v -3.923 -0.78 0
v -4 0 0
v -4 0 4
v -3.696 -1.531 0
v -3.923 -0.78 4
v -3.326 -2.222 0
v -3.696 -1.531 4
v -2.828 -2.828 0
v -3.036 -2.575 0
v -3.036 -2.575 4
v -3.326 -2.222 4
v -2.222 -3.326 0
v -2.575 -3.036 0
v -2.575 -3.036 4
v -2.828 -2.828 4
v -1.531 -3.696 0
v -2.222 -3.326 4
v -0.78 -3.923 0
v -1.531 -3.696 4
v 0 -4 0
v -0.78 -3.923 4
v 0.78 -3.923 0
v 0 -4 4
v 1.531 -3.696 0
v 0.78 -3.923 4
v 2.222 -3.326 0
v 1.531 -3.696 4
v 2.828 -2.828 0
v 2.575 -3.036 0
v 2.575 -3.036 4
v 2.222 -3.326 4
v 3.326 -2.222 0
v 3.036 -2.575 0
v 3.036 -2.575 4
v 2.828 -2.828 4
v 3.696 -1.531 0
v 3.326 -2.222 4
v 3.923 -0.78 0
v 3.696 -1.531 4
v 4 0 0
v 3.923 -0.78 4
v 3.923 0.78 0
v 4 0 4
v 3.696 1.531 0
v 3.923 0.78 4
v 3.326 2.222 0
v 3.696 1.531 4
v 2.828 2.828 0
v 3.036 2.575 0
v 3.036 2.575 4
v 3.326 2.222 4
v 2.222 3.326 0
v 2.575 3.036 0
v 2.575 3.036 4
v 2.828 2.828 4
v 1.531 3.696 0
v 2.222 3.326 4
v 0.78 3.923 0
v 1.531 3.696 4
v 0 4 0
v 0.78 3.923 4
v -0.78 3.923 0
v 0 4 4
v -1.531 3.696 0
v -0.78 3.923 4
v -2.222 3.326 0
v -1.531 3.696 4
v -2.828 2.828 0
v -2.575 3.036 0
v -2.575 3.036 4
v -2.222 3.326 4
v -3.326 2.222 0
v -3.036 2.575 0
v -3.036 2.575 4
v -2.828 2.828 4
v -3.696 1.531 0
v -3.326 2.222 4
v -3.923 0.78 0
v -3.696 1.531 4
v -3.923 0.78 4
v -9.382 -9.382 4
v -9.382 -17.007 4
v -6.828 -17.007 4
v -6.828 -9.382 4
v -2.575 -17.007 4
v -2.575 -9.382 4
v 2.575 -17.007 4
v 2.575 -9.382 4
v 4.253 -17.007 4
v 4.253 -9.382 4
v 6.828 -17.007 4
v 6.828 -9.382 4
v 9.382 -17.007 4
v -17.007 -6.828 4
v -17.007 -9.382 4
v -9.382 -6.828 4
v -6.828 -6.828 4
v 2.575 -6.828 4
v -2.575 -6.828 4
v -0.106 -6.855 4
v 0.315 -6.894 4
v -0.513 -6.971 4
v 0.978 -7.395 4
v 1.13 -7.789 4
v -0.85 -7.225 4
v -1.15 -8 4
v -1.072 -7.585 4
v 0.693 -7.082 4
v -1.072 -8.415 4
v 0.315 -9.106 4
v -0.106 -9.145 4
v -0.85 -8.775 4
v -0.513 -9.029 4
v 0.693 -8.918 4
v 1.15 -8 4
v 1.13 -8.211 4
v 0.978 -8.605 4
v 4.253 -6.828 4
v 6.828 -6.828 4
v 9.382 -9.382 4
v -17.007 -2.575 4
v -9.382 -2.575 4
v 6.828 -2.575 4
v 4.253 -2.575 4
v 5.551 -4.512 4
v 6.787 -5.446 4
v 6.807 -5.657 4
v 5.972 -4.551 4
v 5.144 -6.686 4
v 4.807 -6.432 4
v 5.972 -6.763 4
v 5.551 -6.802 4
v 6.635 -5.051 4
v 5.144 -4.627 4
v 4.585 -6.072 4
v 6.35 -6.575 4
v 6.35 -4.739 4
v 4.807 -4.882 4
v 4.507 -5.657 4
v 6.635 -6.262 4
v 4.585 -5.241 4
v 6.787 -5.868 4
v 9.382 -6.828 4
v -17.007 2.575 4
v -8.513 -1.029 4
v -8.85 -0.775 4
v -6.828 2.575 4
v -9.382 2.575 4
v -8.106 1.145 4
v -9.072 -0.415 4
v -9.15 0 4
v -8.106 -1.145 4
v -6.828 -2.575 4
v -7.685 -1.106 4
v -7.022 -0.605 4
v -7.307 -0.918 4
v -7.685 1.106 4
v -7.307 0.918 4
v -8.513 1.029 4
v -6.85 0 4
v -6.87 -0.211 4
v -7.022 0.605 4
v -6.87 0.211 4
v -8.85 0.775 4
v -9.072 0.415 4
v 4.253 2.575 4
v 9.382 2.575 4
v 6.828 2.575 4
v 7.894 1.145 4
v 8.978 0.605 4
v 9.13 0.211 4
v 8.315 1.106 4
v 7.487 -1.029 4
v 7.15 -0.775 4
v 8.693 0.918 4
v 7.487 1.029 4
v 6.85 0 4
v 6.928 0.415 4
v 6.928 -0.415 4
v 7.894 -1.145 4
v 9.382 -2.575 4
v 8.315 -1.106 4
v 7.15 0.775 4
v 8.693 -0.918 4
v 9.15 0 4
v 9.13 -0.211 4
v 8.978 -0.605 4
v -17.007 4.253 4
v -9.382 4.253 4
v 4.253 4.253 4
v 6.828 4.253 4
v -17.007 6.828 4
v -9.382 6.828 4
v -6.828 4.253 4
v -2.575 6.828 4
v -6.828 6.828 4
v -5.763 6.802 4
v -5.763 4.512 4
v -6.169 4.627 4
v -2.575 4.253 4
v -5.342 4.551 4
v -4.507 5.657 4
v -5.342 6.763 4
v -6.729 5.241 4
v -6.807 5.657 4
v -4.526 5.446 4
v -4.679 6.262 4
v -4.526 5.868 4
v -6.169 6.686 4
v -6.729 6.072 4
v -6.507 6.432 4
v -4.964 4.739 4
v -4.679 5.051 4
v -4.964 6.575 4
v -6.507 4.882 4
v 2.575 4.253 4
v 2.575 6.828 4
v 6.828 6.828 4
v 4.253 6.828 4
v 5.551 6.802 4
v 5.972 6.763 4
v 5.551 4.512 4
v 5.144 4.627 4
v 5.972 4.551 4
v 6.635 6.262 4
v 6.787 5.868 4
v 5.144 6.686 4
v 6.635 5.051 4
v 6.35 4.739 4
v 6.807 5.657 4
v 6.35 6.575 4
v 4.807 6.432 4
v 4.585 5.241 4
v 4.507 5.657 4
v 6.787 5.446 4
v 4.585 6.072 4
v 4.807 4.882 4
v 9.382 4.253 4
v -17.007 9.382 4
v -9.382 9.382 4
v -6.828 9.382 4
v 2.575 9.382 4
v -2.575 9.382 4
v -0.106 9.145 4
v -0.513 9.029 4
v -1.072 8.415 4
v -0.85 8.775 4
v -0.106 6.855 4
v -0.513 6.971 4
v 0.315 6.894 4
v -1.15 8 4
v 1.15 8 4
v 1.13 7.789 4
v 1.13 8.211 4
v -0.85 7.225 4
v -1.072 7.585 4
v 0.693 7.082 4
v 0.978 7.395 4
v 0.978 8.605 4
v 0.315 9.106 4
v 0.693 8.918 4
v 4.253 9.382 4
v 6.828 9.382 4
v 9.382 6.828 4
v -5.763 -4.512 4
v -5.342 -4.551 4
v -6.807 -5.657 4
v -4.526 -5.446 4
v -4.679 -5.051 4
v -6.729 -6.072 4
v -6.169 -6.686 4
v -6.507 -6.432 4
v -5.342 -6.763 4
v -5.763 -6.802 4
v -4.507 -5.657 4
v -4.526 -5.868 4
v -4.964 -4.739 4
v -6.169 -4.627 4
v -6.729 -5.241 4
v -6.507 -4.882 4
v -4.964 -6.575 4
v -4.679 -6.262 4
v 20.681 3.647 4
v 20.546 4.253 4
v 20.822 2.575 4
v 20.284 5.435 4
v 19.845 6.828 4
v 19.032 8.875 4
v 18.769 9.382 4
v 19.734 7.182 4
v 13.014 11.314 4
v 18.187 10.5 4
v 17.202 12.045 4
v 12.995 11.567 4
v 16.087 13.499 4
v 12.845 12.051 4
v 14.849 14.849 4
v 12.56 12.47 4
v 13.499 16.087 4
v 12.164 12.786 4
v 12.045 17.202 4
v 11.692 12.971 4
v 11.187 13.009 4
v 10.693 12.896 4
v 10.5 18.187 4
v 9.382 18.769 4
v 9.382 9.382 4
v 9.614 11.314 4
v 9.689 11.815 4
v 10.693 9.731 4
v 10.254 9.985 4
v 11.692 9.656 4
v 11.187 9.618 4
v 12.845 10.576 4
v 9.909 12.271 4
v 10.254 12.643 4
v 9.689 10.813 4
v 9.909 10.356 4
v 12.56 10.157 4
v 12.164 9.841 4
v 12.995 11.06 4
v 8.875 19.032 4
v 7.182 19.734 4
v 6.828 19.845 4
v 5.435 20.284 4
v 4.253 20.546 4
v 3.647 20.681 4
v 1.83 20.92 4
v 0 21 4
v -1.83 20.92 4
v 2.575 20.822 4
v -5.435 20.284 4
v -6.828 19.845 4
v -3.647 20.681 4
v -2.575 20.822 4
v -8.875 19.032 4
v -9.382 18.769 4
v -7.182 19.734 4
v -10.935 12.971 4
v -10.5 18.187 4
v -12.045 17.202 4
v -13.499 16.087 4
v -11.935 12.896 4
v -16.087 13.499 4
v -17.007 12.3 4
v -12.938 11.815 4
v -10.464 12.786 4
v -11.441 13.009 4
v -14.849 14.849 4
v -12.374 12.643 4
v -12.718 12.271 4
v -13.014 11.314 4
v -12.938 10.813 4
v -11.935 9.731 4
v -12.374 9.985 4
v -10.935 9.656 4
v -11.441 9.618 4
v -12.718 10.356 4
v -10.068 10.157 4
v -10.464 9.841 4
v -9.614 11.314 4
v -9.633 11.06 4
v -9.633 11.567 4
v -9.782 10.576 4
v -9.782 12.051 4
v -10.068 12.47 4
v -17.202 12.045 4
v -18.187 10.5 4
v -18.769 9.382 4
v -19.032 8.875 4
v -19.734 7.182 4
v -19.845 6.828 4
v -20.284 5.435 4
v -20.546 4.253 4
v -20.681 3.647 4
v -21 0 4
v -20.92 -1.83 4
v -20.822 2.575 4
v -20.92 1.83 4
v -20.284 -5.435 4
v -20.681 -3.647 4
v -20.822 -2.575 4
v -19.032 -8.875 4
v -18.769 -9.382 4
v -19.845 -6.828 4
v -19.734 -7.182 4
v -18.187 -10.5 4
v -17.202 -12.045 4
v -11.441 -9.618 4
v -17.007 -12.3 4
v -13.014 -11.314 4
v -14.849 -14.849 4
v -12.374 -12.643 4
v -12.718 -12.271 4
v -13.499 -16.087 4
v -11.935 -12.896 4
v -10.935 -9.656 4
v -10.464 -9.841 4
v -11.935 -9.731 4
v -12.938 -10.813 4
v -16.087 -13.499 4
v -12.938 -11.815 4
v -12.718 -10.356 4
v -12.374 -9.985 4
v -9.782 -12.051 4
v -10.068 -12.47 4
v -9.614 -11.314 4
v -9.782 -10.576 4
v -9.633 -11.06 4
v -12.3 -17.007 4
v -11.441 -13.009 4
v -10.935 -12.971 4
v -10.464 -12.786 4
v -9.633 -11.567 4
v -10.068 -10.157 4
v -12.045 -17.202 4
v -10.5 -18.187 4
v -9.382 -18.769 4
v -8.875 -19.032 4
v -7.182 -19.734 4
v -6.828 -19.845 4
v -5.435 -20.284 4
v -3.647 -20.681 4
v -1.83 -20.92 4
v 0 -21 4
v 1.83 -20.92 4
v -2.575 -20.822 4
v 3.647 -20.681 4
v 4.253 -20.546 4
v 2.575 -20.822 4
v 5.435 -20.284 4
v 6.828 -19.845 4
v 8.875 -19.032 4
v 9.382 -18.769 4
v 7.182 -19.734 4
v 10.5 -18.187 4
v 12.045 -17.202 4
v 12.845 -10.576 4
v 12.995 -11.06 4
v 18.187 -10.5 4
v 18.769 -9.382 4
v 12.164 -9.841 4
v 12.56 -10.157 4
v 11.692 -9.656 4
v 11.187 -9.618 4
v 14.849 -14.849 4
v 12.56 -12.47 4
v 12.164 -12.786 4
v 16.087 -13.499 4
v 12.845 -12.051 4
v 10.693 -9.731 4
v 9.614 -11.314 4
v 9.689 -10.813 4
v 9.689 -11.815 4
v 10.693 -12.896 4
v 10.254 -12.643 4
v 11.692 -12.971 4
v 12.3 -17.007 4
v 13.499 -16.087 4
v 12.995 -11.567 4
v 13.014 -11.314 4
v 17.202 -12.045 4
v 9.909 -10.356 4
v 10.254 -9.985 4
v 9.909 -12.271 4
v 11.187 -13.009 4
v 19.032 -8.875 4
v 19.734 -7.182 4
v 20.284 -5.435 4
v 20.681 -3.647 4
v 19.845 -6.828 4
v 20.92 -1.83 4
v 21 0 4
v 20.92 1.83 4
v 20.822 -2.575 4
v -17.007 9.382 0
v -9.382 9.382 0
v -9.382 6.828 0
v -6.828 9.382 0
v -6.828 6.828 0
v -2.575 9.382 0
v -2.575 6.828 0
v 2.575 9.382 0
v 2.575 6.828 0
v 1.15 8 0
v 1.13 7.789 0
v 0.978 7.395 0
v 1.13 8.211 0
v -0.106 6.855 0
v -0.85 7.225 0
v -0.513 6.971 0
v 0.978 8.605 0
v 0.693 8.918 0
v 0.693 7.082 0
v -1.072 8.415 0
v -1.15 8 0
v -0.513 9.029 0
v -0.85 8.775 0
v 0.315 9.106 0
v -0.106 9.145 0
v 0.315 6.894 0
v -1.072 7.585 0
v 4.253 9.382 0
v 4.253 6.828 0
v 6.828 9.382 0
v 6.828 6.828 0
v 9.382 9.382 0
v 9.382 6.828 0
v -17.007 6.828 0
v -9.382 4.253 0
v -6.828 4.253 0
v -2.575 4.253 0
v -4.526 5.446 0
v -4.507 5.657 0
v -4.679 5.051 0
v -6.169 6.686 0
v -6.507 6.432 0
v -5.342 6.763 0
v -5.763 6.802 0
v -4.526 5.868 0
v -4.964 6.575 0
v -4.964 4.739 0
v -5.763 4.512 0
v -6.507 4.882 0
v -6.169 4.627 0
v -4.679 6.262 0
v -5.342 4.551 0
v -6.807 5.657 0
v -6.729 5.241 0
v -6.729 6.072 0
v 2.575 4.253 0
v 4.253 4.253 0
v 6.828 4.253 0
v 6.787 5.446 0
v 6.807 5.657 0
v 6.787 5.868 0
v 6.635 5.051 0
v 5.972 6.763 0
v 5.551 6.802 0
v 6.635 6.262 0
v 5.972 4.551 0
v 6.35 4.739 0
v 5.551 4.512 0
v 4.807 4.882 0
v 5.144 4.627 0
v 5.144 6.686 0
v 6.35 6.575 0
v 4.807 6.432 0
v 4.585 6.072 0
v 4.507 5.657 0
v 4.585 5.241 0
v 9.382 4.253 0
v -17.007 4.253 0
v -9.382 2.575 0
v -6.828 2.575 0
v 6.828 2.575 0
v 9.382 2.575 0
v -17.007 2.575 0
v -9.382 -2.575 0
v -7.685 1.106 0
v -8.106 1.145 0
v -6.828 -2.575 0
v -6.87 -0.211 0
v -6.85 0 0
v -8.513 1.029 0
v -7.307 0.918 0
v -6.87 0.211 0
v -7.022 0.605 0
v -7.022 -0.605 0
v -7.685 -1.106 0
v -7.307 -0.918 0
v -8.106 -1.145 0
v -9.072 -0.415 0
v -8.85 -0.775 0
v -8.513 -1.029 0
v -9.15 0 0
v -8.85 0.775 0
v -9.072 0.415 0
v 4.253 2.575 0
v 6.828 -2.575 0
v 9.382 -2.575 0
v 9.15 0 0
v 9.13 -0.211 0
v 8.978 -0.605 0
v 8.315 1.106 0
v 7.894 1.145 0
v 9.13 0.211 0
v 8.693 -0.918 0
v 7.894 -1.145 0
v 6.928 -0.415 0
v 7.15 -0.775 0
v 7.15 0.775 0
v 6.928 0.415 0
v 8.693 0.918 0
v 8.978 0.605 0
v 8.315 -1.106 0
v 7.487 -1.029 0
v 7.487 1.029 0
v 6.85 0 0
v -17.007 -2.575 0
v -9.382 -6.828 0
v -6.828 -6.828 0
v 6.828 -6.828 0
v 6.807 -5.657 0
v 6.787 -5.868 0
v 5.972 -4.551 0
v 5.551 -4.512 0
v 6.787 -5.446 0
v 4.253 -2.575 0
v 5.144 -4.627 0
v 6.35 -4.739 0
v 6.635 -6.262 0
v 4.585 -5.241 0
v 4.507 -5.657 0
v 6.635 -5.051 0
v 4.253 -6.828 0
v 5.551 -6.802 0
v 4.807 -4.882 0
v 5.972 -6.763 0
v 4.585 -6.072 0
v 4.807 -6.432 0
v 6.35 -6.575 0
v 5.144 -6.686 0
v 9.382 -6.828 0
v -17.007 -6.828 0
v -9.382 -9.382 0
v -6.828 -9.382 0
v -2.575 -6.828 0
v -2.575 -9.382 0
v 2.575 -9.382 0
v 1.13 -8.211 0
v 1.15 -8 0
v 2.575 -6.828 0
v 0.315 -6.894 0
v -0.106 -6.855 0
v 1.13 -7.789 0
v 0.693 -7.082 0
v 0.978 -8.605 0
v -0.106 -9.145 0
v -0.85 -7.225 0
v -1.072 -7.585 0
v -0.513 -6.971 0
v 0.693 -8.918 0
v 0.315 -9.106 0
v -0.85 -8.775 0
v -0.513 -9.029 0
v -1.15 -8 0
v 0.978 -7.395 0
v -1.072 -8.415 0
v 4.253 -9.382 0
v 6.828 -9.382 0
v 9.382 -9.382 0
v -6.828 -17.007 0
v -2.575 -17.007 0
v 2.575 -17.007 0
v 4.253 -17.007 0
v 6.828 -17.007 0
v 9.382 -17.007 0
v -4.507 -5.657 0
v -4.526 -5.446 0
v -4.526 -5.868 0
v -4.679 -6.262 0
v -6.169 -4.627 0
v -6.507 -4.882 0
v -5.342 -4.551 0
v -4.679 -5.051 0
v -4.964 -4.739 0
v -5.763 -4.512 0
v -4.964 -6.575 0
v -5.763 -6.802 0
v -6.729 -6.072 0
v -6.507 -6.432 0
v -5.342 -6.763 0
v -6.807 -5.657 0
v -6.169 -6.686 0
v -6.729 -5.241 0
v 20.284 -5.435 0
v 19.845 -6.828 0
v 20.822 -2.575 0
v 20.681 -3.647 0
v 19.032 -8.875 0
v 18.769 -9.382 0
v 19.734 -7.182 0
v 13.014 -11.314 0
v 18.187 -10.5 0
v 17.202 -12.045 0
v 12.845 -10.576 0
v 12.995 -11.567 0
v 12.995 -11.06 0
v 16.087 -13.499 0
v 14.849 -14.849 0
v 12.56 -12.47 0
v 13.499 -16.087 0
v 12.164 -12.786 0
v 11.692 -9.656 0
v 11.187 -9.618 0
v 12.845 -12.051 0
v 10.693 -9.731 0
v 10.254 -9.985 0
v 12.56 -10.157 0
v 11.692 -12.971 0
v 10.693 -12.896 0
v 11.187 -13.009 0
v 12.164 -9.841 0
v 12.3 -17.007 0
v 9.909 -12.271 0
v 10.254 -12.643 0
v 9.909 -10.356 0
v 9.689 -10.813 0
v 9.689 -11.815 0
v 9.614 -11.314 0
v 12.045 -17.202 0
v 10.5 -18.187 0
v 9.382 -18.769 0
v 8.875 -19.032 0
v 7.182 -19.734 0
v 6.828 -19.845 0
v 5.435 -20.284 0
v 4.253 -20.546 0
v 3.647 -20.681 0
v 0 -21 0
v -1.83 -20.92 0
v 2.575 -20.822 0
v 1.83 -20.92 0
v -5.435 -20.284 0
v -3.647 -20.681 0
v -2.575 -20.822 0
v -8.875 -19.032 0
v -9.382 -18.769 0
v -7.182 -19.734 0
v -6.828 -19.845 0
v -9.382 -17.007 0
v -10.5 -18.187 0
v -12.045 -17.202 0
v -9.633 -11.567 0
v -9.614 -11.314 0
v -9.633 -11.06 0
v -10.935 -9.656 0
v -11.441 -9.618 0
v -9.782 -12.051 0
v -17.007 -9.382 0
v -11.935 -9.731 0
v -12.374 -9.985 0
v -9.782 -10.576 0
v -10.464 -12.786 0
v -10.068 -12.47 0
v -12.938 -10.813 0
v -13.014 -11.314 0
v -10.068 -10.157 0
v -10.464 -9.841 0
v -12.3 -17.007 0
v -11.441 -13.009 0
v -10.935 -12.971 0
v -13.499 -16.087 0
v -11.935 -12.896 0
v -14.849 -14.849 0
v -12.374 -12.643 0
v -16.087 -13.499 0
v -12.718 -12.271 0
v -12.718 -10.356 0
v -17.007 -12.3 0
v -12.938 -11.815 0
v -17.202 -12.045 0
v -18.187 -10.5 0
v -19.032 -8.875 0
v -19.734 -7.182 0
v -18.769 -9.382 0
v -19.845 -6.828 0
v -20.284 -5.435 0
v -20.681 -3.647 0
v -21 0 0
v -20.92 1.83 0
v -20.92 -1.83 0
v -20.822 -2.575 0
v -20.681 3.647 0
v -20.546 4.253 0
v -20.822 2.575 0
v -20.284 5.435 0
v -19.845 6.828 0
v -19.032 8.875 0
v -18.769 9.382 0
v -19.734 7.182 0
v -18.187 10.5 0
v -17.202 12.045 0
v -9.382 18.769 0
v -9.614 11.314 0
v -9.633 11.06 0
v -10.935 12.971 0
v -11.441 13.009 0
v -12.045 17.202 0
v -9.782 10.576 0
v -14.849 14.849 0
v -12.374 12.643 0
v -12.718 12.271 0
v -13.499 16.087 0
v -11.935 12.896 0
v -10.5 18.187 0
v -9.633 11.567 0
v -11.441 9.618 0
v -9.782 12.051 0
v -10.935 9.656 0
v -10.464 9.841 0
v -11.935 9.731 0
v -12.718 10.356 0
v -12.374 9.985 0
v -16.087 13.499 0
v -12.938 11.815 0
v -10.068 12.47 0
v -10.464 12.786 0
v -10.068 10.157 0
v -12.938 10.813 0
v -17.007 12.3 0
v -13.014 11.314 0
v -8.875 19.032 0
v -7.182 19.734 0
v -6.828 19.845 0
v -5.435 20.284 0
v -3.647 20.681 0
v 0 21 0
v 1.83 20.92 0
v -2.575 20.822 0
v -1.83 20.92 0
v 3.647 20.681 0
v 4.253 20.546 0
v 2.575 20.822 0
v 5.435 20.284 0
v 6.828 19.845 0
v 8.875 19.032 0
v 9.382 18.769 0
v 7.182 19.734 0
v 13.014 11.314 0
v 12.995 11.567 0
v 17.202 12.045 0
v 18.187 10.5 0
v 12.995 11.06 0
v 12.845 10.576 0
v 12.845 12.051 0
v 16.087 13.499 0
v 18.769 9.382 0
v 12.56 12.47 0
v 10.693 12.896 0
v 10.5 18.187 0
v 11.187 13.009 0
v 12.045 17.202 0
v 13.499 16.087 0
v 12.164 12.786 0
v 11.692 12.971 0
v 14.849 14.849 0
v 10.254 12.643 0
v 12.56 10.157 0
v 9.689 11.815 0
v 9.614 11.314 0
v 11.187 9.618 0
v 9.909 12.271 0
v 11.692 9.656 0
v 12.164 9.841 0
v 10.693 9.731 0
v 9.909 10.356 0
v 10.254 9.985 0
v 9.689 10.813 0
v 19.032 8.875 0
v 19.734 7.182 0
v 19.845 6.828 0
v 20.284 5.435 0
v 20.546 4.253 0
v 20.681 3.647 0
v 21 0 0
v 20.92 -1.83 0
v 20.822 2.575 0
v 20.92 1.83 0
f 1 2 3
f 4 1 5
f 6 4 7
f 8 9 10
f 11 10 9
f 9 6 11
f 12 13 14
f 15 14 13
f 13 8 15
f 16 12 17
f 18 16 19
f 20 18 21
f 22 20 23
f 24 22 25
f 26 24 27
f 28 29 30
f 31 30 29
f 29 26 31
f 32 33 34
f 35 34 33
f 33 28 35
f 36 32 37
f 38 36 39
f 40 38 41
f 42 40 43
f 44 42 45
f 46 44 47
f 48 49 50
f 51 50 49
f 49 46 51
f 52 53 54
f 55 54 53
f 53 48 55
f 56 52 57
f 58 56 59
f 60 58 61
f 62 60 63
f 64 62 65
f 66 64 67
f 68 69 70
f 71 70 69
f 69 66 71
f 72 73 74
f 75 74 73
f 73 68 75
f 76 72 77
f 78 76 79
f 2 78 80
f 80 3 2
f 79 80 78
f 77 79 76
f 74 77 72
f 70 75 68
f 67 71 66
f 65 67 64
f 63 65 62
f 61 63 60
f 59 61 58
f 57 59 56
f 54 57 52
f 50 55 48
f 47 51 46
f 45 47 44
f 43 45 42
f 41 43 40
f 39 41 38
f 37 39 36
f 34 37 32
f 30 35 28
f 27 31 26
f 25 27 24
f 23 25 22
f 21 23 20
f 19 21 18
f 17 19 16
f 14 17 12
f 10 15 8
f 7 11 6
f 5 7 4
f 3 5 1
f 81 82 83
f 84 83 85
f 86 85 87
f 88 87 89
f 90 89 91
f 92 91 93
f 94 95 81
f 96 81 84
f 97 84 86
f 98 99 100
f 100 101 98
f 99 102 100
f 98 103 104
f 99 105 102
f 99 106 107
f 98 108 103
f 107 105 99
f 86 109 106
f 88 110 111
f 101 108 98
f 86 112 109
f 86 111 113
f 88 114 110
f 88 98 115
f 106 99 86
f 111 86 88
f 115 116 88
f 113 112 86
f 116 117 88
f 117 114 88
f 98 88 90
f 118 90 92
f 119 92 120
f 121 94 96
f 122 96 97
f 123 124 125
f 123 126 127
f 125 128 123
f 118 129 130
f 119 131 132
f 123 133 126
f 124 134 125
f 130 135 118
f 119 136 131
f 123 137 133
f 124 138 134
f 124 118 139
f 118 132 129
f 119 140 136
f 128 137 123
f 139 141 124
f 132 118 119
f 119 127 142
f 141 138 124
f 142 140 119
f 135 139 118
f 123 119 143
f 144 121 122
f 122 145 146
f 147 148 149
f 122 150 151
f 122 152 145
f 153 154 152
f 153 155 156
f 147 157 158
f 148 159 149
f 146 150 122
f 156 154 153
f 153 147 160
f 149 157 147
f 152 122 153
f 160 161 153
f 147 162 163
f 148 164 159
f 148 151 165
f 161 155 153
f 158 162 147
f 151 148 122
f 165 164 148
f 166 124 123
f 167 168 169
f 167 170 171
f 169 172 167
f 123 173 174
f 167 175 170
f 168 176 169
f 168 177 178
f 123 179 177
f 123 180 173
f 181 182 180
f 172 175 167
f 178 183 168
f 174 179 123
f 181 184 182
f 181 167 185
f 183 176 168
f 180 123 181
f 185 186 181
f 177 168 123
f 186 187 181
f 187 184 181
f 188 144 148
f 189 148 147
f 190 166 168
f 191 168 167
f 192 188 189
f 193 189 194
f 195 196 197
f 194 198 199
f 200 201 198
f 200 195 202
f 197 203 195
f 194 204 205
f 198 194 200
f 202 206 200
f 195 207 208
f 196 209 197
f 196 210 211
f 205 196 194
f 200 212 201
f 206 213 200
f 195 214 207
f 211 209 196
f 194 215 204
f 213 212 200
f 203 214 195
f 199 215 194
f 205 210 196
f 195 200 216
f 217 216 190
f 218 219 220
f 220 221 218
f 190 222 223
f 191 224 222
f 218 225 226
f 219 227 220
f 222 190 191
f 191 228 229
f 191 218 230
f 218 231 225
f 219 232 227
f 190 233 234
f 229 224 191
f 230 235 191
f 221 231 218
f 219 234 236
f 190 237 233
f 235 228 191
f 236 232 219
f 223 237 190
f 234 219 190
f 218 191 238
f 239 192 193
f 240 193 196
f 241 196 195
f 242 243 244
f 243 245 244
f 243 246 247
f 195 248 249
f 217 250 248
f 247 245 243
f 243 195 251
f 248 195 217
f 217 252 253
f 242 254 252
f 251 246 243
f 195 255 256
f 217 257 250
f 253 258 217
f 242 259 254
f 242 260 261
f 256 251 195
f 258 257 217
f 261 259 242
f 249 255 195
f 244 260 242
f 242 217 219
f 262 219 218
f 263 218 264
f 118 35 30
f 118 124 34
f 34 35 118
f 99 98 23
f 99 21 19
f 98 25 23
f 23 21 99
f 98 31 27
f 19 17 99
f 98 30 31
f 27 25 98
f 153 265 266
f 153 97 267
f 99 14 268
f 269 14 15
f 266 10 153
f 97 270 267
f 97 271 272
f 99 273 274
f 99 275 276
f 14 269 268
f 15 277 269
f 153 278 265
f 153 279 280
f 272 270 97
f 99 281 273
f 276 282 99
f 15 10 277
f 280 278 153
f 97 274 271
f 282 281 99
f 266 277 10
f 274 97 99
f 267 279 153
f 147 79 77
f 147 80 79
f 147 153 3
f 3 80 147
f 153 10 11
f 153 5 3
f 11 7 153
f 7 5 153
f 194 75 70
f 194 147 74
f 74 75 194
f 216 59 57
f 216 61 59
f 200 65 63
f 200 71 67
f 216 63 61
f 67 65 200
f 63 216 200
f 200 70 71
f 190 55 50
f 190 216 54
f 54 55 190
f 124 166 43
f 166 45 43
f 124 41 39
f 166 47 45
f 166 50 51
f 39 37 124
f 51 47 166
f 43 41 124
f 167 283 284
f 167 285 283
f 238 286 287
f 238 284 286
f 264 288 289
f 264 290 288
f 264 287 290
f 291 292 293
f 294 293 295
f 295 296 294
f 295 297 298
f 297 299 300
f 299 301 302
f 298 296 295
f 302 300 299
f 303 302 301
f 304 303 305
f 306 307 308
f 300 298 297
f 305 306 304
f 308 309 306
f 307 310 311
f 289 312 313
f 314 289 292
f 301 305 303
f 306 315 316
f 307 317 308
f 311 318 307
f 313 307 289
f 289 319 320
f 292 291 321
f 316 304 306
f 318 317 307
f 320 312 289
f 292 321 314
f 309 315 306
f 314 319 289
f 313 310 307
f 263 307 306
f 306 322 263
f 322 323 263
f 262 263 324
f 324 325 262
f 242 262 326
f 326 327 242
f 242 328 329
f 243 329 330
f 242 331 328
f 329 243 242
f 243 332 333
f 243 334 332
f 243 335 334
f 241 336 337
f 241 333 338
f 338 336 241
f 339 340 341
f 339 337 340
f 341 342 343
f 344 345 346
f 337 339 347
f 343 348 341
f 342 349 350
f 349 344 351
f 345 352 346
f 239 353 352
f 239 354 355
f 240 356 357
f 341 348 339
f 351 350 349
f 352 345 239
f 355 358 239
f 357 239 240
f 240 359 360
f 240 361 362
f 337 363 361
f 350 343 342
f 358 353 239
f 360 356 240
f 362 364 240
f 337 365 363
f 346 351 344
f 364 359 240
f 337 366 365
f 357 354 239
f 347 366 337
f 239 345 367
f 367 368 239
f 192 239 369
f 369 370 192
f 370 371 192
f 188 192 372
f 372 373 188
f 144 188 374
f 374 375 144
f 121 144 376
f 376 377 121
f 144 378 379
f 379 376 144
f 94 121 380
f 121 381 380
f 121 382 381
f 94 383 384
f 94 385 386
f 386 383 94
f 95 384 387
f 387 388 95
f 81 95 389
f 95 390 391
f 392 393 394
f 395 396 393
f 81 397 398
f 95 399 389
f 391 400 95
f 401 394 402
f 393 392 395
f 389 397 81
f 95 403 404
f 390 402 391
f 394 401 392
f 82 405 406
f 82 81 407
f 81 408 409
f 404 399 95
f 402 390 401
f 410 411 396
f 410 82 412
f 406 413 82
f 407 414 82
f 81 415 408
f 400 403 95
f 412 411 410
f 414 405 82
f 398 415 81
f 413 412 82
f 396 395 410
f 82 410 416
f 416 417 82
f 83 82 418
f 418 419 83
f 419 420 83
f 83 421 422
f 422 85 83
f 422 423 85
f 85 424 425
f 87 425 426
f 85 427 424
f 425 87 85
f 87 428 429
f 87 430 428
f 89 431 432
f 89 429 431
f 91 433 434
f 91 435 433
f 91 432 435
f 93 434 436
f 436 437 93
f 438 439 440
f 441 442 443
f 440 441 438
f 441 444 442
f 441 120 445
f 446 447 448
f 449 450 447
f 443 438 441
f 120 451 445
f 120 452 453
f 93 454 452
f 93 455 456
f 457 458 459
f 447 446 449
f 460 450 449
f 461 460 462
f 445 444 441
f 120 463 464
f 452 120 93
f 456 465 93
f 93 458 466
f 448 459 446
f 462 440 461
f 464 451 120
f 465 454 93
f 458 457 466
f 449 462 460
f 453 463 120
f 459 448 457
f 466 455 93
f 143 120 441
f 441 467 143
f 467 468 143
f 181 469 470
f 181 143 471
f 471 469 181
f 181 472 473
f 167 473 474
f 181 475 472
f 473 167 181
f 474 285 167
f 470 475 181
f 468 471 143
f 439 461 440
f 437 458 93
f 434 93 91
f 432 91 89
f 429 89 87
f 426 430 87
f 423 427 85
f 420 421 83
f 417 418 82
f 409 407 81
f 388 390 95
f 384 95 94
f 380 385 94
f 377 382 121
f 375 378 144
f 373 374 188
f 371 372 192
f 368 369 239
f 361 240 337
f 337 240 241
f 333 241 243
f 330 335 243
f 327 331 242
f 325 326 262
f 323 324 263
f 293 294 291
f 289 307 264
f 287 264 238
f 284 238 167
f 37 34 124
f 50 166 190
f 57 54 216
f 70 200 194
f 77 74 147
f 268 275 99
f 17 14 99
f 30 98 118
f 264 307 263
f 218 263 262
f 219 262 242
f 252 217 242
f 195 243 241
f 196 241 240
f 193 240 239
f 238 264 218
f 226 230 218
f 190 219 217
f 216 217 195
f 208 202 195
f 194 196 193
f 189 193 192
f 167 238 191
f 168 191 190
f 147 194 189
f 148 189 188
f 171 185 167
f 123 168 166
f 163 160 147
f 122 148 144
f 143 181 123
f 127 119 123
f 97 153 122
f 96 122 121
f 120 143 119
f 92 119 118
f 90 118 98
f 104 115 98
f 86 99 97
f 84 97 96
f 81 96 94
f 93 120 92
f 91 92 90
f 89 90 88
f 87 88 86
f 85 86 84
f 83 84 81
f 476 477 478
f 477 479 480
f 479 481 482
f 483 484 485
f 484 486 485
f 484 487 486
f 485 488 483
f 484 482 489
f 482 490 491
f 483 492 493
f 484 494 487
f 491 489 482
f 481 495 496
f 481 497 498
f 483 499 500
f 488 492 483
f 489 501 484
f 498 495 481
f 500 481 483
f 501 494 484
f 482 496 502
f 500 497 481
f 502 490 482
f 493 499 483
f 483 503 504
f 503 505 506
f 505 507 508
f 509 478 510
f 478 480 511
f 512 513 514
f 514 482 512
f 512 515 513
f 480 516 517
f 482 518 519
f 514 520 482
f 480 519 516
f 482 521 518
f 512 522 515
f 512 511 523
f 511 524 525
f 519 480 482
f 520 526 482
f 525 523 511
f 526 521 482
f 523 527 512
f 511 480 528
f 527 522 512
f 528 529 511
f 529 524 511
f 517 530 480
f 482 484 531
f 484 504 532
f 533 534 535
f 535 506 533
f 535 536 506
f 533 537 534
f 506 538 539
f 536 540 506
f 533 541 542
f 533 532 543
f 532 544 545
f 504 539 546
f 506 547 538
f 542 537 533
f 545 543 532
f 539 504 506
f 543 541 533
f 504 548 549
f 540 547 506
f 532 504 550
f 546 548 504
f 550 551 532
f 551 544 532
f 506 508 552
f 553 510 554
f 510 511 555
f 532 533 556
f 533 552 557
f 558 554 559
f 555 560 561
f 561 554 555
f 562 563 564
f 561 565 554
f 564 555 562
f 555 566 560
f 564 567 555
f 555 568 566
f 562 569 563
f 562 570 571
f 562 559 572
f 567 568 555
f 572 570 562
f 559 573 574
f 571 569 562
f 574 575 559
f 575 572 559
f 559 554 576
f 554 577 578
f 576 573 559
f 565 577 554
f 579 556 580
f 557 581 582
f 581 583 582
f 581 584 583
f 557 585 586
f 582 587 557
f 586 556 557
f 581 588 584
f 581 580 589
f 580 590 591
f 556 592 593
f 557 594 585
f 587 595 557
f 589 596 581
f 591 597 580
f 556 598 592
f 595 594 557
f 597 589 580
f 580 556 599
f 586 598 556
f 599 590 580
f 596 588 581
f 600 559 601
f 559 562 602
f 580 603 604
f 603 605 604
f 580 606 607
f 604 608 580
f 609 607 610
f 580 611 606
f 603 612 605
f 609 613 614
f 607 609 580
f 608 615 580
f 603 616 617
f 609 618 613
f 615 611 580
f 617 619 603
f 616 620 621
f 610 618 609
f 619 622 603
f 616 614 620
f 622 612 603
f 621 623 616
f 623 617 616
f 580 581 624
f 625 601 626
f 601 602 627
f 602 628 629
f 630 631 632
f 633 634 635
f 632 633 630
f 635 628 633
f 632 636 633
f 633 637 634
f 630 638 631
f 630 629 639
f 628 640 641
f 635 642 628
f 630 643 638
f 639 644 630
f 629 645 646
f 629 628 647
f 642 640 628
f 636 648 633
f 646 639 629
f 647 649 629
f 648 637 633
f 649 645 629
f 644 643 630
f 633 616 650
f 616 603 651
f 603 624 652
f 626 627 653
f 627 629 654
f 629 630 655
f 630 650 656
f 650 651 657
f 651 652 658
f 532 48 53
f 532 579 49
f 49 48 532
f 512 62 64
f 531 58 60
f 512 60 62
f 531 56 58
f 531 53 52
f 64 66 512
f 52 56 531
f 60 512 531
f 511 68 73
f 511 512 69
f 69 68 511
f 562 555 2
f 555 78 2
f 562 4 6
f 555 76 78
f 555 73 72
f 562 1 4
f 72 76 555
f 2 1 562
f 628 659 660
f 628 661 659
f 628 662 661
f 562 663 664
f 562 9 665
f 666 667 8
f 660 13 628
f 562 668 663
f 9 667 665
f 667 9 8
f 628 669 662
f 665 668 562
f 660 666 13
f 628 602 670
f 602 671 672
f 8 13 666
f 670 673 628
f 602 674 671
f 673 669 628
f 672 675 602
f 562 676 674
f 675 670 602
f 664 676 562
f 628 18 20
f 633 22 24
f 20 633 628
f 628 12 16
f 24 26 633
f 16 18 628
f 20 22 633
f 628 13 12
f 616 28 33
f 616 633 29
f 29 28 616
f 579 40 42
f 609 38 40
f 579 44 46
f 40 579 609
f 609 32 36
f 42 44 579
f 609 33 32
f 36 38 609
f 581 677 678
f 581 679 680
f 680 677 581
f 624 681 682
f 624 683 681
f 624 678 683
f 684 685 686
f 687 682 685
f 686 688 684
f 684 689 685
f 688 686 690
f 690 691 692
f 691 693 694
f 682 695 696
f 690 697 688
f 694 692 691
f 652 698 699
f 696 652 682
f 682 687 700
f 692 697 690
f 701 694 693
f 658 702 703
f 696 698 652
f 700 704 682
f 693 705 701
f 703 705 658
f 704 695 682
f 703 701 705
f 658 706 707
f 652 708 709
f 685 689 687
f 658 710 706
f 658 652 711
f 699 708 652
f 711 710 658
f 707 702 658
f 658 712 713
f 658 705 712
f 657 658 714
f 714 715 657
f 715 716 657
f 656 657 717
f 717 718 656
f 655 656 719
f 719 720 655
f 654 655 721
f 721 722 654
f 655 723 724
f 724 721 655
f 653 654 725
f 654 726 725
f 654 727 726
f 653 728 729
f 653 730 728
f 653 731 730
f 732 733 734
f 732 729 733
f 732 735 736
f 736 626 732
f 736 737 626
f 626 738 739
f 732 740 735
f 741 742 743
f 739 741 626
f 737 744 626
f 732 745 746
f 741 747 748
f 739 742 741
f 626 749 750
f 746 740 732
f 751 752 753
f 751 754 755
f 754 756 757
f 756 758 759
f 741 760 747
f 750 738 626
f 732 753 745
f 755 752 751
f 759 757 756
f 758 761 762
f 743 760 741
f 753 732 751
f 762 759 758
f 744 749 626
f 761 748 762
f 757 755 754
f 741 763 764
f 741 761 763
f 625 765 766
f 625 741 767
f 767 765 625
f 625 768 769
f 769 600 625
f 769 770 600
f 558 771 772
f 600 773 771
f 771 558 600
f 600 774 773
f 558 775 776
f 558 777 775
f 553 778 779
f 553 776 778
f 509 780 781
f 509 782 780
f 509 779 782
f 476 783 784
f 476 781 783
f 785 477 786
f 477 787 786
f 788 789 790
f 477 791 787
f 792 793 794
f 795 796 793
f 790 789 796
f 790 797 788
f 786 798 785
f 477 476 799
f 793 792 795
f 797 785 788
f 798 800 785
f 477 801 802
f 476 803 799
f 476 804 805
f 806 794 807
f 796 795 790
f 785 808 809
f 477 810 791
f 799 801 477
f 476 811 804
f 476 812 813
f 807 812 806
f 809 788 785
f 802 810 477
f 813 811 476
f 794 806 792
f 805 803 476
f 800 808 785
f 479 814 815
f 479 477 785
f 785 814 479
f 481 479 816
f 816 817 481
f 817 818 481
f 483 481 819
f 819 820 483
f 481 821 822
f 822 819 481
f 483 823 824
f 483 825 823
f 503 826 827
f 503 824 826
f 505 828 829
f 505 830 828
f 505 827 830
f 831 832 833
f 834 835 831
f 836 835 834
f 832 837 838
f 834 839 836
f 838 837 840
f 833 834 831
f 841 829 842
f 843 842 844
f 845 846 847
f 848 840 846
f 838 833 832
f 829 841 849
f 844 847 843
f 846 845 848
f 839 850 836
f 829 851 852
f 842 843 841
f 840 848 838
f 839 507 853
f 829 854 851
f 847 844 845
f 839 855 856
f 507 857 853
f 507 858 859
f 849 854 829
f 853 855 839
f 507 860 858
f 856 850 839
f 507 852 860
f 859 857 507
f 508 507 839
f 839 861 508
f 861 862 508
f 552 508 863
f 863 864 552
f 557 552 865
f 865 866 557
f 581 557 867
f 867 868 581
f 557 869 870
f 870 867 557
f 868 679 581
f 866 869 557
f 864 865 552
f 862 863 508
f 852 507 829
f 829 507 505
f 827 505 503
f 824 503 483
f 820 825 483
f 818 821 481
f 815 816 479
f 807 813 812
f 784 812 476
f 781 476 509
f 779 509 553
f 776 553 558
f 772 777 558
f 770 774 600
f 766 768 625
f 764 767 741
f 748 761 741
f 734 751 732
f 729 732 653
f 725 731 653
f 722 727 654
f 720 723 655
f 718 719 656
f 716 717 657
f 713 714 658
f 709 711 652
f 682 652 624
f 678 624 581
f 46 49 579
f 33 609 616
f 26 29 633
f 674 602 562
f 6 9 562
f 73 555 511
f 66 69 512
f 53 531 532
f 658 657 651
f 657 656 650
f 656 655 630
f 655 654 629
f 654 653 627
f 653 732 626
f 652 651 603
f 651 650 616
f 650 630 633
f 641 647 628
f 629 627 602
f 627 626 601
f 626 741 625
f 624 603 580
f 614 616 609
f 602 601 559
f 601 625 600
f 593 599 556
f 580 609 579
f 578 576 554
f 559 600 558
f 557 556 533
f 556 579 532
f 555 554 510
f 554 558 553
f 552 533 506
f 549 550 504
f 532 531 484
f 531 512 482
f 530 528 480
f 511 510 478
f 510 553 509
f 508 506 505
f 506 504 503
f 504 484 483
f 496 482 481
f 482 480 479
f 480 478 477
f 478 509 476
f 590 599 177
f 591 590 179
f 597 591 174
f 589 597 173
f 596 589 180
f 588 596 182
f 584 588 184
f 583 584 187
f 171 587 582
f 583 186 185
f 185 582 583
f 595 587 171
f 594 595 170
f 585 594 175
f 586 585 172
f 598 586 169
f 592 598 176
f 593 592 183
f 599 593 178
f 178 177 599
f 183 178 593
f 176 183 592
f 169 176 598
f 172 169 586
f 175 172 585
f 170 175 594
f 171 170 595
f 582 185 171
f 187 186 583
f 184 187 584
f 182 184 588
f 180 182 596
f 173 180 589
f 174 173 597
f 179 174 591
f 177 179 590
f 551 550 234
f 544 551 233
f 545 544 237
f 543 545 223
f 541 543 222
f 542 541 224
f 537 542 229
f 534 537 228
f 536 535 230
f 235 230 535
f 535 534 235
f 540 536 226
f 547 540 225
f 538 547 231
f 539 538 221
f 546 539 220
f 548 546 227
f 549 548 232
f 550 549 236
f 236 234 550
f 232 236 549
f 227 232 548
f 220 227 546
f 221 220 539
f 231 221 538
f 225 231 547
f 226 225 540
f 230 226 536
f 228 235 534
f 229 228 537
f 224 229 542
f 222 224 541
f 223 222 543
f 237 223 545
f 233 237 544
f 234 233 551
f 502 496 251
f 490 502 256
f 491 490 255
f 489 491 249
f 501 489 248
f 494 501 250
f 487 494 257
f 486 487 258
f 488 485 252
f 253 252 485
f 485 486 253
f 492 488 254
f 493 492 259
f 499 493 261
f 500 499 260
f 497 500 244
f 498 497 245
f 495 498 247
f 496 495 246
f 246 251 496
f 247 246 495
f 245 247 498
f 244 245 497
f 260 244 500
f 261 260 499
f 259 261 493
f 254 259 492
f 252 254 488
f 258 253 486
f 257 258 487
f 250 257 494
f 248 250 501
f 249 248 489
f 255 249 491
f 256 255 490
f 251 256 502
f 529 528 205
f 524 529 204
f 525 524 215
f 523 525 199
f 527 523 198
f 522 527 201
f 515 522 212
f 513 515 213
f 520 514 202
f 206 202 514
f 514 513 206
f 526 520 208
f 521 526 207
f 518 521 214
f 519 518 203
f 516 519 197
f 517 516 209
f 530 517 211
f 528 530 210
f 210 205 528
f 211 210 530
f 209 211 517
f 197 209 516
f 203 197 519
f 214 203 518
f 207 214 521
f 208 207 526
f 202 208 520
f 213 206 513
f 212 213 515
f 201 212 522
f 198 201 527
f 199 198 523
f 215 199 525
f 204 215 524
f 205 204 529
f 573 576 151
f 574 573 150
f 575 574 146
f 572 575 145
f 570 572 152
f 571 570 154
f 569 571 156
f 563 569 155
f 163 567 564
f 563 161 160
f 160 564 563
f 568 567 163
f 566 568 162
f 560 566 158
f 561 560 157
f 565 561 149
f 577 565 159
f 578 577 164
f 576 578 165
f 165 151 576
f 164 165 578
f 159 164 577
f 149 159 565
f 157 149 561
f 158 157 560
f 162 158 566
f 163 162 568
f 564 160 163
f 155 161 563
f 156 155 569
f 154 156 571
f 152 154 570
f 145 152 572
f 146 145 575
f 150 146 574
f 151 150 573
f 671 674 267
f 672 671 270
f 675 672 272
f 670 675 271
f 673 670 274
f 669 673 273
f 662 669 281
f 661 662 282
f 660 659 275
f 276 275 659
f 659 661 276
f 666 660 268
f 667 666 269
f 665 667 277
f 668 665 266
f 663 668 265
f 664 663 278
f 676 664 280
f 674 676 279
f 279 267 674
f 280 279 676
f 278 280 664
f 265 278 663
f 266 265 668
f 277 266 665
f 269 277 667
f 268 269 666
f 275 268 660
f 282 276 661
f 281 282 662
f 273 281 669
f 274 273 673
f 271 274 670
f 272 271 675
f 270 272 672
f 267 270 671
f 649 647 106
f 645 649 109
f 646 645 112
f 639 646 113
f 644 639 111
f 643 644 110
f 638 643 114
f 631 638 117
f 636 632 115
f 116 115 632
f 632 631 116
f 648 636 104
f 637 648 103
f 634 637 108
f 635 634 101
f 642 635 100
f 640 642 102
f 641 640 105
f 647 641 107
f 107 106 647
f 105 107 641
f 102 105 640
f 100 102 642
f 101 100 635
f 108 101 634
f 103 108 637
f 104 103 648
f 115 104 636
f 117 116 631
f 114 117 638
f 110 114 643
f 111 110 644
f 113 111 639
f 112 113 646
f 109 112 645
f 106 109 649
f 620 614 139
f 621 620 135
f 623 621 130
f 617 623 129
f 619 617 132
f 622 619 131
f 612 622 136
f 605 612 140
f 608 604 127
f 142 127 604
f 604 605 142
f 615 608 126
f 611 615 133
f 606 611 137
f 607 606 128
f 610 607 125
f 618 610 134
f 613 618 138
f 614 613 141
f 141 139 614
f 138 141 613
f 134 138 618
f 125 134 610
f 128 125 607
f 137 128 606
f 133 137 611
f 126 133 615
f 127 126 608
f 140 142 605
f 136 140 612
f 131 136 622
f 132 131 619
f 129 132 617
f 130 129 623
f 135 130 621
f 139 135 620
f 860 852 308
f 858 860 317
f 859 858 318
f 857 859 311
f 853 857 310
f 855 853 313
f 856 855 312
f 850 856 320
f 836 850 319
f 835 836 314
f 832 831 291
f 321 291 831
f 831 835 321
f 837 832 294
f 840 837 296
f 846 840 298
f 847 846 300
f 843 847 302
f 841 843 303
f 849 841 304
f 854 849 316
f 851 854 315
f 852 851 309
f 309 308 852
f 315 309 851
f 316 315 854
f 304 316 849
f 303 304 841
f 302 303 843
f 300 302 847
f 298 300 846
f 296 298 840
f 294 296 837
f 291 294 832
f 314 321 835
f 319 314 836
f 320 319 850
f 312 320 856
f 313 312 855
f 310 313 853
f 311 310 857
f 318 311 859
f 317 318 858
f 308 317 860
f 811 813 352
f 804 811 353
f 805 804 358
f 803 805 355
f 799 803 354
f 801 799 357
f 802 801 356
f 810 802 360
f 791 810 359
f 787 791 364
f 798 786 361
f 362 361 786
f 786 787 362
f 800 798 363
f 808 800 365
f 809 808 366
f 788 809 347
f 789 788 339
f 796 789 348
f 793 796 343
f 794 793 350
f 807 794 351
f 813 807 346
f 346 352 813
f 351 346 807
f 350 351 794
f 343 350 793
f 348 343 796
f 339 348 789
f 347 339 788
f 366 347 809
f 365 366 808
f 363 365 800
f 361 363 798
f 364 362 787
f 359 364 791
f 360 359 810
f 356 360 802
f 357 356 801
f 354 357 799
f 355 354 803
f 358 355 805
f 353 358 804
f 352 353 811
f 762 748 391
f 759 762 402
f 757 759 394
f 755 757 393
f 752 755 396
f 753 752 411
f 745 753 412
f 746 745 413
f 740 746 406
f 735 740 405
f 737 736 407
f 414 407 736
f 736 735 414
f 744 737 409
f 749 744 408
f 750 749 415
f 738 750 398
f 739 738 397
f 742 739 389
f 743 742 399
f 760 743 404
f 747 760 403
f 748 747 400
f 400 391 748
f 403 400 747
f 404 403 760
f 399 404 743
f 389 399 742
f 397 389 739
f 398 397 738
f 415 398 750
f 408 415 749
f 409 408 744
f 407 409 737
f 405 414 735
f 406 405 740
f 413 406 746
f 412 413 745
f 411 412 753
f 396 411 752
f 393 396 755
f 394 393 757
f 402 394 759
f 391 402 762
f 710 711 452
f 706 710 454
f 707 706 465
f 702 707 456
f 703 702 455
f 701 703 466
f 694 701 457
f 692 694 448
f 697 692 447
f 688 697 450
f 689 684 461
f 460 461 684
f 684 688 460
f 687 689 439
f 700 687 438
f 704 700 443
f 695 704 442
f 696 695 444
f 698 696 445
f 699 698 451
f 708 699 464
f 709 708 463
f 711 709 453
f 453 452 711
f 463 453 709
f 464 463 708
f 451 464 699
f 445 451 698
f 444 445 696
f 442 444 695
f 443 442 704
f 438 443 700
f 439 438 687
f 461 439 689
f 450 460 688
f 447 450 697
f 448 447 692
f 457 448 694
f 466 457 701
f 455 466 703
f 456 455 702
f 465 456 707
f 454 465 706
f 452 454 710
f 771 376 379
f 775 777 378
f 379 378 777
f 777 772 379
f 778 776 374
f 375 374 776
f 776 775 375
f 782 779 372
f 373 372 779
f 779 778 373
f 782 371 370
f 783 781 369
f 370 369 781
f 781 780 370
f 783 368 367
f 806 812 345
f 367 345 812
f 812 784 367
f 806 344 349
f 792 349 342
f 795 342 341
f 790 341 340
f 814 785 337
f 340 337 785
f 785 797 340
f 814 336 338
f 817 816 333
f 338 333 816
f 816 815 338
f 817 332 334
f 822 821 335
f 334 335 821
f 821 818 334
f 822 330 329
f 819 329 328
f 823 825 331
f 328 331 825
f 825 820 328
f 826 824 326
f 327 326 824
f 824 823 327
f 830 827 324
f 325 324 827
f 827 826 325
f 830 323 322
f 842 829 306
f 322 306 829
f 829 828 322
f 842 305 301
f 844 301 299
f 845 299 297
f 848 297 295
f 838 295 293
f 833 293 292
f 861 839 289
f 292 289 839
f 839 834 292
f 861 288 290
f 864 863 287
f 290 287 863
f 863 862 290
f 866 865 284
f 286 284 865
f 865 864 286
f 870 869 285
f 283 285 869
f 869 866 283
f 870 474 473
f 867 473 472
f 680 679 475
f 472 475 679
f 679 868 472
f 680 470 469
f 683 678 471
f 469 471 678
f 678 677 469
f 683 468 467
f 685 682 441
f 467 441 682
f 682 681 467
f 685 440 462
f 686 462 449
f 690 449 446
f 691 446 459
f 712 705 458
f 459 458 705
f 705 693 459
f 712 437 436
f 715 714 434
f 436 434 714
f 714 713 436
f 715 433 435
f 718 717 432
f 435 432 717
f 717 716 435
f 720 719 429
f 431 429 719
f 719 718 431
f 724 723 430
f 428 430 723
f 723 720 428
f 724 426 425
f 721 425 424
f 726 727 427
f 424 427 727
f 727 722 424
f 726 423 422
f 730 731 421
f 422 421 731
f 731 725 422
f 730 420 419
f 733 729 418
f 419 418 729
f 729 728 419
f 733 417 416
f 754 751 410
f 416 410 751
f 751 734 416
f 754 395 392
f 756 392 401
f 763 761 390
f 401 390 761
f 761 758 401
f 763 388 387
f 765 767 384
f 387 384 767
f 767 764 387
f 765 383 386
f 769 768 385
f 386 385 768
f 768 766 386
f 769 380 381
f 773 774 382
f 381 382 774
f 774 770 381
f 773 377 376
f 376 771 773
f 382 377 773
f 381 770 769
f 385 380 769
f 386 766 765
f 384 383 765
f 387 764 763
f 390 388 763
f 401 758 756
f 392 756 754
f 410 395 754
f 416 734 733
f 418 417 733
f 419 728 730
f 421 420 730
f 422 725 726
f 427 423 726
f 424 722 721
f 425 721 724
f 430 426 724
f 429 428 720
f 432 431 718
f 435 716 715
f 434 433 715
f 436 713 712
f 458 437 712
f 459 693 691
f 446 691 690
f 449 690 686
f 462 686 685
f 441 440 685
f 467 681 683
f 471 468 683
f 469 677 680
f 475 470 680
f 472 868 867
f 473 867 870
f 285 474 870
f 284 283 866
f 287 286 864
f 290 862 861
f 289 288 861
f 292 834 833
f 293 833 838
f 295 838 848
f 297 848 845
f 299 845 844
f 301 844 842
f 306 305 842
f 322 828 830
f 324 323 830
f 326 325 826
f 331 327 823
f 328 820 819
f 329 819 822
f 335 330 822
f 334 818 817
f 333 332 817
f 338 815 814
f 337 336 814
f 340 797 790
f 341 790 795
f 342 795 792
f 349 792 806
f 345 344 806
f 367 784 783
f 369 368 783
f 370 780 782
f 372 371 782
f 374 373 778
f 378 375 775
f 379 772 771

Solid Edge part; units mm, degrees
sketch "Sketch1" plane through (0, 0, 0) normal (0, 0, 1) x (1, 0, 0)
  circle A0 centre (0, 0) radius 21
  circle A1 centre (0, 0) radius 4
  circle A2 centre (8, 0) radius 1.15
  circle A3 centre (5.6569, 5.6569) radius 1.15
  circle A4 centre (0, 8) radius 1.15
  circle A5 centre (-5.6569, 5.6569) radius 1.15
  circle A6 centre (-8, 0) radius 1.15
  circle A7 centre (-5.6569, -5.6569) radius 1.15
  circle A8 centre (0, -8) radius 1.15
  circle A9 centre (5.6569, -5.6569) radius 1.15
  circle A10 centre (11.3137, 11.3137) radius 1.7
  circle A11 centre (-11.3137, 11.3137) radius 1.7
  circle A12 centre (-11.3137, -11.3137) radius 1.7
  circle A13 centre (11.3137, -11.3137) radius 1.7
extrude "Protrusion1" add sketch "Sketch1" along normal blind 4
